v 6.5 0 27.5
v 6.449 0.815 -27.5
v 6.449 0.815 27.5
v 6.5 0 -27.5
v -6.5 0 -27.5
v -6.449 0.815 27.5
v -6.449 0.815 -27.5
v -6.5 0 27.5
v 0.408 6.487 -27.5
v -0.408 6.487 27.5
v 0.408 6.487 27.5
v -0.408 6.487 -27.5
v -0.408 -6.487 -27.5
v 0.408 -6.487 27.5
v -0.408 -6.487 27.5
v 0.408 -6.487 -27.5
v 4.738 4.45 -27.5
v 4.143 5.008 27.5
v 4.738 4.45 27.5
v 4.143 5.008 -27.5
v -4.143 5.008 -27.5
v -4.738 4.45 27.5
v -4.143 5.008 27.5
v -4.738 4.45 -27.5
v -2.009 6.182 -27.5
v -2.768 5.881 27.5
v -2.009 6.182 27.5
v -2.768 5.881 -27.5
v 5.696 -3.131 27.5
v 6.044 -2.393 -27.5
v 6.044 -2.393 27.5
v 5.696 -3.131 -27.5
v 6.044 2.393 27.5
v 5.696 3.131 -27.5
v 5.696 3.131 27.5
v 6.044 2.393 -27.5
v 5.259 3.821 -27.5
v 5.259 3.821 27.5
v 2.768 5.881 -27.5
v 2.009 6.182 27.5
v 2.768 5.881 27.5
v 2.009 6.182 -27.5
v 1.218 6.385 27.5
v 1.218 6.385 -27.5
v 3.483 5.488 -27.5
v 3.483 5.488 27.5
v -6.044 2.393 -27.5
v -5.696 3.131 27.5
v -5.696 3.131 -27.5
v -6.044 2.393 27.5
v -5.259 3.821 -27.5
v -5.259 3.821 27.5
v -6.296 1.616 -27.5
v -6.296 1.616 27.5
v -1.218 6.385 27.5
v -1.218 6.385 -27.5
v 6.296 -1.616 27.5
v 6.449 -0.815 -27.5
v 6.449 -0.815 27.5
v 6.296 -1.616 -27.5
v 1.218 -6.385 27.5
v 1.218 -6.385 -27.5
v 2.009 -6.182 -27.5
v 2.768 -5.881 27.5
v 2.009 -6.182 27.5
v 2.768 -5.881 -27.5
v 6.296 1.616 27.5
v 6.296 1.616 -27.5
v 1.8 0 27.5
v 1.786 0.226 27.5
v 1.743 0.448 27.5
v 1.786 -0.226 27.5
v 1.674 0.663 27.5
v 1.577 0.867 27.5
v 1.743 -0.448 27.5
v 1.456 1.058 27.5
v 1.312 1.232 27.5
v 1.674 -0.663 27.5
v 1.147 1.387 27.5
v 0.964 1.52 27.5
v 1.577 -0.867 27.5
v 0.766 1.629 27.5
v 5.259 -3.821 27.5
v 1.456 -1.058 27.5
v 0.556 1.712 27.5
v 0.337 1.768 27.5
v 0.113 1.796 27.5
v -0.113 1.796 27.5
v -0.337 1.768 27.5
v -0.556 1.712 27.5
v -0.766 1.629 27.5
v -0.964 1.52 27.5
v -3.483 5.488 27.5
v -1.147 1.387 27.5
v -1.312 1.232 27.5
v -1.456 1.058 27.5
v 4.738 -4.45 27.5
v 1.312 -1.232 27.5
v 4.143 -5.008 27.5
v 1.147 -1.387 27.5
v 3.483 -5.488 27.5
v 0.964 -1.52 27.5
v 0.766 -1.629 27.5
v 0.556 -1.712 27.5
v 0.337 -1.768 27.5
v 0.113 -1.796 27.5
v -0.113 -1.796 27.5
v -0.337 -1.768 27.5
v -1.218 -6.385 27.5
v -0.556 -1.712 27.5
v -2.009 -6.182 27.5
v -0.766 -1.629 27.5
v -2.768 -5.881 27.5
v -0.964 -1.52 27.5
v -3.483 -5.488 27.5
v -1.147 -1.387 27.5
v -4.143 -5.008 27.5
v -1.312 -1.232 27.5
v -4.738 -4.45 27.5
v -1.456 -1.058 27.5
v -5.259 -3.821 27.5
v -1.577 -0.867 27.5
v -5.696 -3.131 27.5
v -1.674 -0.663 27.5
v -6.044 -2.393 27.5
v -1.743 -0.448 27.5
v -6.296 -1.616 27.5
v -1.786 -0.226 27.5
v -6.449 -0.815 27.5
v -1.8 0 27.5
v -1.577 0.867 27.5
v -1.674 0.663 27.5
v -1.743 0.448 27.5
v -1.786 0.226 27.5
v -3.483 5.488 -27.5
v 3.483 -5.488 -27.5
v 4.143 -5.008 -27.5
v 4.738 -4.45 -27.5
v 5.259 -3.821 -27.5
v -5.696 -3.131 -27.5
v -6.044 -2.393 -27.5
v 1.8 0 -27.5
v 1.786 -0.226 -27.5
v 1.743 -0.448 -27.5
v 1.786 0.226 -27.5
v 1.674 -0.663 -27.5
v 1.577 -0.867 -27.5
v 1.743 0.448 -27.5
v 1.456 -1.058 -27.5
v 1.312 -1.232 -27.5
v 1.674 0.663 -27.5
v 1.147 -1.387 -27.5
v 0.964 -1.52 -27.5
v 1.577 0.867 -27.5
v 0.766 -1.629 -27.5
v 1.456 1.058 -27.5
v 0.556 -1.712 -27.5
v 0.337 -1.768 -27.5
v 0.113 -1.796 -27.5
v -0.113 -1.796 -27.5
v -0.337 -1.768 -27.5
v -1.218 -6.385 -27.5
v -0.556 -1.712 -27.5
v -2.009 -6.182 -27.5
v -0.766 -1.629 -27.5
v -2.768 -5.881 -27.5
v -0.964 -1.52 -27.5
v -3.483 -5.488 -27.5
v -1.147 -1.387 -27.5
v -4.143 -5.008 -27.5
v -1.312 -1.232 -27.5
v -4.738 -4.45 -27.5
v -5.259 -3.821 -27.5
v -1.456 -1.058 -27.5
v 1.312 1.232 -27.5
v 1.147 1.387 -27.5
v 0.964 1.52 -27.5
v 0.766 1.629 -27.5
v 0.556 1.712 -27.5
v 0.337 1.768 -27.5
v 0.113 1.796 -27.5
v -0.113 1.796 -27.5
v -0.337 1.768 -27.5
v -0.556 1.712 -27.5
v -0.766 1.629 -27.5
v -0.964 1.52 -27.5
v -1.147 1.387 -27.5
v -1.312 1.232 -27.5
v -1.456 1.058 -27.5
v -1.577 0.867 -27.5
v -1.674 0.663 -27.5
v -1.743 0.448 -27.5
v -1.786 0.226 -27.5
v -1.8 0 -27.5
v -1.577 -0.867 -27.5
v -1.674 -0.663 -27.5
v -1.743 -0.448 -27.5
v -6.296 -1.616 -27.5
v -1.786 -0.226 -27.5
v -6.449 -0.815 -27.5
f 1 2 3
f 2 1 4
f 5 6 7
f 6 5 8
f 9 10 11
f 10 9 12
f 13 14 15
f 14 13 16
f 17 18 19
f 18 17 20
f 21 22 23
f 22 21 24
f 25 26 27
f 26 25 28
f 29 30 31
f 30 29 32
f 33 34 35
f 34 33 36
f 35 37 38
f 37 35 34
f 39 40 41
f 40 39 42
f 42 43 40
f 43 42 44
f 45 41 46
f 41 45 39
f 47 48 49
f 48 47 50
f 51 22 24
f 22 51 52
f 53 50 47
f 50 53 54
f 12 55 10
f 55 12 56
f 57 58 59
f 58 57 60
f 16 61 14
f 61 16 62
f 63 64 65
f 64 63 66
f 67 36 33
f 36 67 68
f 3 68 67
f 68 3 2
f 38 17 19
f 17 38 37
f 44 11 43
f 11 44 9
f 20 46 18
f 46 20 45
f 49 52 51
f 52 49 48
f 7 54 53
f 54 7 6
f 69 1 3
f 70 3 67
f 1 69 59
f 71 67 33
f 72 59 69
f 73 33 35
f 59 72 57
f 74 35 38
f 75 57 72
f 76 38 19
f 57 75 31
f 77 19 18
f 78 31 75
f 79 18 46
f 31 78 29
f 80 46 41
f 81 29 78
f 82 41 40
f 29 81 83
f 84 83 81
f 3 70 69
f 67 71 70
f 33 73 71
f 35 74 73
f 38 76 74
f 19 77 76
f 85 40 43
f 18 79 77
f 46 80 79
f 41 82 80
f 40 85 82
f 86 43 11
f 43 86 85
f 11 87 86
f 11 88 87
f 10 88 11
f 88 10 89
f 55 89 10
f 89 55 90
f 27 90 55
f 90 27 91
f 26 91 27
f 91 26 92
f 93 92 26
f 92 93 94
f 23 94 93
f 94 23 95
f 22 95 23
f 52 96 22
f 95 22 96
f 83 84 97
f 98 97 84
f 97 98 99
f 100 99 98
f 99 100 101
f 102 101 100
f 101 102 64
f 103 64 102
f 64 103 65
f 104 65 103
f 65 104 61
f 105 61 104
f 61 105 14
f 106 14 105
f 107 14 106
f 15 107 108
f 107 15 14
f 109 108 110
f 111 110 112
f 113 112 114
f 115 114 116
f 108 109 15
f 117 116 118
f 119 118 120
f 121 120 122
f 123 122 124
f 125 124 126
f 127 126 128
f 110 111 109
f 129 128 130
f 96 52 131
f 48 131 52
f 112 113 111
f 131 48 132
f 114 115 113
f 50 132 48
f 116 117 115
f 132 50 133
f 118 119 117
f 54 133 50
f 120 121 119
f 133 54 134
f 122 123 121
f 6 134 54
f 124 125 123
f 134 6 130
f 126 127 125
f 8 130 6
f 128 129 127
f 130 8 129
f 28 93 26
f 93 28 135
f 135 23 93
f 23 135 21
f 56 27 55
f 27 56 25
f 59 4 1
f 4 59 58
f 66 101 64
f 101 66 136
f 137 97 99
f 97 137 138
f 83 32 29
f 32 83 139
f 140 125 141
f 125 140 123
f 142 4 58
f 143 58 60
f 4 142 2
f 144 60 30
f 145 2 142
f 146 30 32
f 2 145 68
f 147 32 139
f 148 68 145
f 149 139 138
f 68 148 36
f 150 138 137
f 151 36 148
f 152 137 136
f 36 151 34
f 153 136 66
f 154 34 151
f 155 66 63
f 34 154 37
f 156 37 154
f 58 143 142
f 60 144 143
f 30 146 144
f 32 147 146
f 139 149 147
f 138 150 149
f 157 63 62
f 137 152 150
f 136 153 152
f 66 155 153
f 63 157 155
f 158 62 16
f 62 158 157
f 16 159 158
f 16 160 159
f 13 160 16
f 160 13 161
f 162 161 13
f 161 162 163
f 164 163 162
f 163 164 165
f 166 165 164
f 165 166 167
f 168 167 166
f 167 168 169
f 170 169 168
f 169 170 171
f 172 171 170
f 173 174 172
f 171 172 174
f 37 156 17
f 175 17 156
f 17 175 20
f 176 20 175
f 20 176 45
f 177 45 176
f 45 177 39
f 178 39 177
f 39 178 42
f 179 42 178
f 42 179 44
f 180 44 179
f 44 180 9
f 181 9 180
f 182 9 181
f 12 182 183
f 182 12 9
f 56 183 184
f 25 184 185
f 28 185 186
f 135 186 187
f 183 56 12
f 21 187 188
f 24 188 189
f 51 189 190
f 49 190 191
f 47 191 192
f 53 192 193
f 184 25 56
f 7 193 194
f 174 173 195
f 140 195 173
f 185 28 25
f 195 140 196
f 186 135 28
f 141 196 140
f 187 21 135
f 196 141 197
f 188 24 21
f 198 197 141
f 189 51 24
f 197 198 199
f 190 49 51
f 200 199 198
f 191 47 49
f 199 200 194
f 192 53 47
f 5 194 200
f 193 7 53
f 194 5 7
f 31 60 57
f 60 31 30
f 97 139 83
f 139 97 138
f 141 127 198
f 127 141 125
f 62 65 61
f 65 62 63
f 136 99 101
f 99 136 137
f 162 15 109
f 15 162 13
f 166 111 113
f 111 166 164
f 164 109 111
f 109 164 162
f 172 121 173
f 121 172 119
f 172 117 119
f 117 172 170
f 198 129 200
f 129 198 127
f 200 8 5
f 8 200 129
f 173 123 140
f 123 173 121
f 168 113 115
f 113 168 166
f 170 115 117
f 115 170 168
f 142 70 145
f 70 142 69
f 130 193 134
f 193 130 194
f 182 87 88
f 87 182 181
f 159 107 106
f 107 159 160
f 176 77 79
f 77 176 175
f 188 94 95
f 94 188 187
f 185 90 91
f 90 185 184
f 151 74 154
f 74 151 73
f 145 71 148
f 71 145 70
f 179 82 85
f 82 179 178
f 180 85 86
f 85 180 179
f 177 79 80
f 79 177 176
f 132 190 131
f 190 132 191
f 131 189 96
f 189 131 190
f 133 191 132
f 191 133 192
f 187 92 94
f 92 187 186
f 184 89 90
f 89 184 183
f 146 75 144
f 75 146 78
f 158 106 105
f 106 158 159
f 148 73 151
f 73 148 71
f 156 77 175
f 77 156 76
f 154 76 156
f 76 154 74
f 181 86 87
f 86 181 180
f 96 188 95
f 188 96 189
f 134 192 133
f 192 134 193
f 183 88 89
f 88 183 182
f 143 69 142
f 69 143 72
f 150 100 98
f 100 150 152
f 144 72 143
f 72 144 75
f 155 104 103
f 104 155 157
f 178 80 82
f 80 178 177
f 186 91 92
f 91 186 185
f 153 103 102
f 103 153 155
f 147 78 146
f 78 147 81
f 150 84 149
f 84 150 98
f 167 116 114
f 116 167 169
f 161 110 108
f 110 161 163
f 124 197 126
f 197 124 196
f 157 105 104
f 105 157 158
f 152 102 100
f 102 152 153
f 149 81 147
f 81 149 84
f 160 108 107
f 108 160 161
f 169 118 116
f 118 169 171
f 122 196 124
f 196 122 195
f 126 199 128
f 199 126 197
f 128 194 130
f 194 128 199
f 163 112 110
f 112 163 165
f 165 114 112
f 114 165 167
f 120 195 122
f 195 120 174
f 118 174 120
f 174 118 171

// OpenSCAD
$fn = 50;


difference() {
	union() {
		translate(v = [0, 0, -27.5000000000]) {
			cylinder(h = 55, r = 6.5000000000);
		}
	}
	union() {
		translate(v = [0, 0, -100.0000000000]) {
			cylinder(h = 200, r = 1.8000000000);
		}
	}
}
